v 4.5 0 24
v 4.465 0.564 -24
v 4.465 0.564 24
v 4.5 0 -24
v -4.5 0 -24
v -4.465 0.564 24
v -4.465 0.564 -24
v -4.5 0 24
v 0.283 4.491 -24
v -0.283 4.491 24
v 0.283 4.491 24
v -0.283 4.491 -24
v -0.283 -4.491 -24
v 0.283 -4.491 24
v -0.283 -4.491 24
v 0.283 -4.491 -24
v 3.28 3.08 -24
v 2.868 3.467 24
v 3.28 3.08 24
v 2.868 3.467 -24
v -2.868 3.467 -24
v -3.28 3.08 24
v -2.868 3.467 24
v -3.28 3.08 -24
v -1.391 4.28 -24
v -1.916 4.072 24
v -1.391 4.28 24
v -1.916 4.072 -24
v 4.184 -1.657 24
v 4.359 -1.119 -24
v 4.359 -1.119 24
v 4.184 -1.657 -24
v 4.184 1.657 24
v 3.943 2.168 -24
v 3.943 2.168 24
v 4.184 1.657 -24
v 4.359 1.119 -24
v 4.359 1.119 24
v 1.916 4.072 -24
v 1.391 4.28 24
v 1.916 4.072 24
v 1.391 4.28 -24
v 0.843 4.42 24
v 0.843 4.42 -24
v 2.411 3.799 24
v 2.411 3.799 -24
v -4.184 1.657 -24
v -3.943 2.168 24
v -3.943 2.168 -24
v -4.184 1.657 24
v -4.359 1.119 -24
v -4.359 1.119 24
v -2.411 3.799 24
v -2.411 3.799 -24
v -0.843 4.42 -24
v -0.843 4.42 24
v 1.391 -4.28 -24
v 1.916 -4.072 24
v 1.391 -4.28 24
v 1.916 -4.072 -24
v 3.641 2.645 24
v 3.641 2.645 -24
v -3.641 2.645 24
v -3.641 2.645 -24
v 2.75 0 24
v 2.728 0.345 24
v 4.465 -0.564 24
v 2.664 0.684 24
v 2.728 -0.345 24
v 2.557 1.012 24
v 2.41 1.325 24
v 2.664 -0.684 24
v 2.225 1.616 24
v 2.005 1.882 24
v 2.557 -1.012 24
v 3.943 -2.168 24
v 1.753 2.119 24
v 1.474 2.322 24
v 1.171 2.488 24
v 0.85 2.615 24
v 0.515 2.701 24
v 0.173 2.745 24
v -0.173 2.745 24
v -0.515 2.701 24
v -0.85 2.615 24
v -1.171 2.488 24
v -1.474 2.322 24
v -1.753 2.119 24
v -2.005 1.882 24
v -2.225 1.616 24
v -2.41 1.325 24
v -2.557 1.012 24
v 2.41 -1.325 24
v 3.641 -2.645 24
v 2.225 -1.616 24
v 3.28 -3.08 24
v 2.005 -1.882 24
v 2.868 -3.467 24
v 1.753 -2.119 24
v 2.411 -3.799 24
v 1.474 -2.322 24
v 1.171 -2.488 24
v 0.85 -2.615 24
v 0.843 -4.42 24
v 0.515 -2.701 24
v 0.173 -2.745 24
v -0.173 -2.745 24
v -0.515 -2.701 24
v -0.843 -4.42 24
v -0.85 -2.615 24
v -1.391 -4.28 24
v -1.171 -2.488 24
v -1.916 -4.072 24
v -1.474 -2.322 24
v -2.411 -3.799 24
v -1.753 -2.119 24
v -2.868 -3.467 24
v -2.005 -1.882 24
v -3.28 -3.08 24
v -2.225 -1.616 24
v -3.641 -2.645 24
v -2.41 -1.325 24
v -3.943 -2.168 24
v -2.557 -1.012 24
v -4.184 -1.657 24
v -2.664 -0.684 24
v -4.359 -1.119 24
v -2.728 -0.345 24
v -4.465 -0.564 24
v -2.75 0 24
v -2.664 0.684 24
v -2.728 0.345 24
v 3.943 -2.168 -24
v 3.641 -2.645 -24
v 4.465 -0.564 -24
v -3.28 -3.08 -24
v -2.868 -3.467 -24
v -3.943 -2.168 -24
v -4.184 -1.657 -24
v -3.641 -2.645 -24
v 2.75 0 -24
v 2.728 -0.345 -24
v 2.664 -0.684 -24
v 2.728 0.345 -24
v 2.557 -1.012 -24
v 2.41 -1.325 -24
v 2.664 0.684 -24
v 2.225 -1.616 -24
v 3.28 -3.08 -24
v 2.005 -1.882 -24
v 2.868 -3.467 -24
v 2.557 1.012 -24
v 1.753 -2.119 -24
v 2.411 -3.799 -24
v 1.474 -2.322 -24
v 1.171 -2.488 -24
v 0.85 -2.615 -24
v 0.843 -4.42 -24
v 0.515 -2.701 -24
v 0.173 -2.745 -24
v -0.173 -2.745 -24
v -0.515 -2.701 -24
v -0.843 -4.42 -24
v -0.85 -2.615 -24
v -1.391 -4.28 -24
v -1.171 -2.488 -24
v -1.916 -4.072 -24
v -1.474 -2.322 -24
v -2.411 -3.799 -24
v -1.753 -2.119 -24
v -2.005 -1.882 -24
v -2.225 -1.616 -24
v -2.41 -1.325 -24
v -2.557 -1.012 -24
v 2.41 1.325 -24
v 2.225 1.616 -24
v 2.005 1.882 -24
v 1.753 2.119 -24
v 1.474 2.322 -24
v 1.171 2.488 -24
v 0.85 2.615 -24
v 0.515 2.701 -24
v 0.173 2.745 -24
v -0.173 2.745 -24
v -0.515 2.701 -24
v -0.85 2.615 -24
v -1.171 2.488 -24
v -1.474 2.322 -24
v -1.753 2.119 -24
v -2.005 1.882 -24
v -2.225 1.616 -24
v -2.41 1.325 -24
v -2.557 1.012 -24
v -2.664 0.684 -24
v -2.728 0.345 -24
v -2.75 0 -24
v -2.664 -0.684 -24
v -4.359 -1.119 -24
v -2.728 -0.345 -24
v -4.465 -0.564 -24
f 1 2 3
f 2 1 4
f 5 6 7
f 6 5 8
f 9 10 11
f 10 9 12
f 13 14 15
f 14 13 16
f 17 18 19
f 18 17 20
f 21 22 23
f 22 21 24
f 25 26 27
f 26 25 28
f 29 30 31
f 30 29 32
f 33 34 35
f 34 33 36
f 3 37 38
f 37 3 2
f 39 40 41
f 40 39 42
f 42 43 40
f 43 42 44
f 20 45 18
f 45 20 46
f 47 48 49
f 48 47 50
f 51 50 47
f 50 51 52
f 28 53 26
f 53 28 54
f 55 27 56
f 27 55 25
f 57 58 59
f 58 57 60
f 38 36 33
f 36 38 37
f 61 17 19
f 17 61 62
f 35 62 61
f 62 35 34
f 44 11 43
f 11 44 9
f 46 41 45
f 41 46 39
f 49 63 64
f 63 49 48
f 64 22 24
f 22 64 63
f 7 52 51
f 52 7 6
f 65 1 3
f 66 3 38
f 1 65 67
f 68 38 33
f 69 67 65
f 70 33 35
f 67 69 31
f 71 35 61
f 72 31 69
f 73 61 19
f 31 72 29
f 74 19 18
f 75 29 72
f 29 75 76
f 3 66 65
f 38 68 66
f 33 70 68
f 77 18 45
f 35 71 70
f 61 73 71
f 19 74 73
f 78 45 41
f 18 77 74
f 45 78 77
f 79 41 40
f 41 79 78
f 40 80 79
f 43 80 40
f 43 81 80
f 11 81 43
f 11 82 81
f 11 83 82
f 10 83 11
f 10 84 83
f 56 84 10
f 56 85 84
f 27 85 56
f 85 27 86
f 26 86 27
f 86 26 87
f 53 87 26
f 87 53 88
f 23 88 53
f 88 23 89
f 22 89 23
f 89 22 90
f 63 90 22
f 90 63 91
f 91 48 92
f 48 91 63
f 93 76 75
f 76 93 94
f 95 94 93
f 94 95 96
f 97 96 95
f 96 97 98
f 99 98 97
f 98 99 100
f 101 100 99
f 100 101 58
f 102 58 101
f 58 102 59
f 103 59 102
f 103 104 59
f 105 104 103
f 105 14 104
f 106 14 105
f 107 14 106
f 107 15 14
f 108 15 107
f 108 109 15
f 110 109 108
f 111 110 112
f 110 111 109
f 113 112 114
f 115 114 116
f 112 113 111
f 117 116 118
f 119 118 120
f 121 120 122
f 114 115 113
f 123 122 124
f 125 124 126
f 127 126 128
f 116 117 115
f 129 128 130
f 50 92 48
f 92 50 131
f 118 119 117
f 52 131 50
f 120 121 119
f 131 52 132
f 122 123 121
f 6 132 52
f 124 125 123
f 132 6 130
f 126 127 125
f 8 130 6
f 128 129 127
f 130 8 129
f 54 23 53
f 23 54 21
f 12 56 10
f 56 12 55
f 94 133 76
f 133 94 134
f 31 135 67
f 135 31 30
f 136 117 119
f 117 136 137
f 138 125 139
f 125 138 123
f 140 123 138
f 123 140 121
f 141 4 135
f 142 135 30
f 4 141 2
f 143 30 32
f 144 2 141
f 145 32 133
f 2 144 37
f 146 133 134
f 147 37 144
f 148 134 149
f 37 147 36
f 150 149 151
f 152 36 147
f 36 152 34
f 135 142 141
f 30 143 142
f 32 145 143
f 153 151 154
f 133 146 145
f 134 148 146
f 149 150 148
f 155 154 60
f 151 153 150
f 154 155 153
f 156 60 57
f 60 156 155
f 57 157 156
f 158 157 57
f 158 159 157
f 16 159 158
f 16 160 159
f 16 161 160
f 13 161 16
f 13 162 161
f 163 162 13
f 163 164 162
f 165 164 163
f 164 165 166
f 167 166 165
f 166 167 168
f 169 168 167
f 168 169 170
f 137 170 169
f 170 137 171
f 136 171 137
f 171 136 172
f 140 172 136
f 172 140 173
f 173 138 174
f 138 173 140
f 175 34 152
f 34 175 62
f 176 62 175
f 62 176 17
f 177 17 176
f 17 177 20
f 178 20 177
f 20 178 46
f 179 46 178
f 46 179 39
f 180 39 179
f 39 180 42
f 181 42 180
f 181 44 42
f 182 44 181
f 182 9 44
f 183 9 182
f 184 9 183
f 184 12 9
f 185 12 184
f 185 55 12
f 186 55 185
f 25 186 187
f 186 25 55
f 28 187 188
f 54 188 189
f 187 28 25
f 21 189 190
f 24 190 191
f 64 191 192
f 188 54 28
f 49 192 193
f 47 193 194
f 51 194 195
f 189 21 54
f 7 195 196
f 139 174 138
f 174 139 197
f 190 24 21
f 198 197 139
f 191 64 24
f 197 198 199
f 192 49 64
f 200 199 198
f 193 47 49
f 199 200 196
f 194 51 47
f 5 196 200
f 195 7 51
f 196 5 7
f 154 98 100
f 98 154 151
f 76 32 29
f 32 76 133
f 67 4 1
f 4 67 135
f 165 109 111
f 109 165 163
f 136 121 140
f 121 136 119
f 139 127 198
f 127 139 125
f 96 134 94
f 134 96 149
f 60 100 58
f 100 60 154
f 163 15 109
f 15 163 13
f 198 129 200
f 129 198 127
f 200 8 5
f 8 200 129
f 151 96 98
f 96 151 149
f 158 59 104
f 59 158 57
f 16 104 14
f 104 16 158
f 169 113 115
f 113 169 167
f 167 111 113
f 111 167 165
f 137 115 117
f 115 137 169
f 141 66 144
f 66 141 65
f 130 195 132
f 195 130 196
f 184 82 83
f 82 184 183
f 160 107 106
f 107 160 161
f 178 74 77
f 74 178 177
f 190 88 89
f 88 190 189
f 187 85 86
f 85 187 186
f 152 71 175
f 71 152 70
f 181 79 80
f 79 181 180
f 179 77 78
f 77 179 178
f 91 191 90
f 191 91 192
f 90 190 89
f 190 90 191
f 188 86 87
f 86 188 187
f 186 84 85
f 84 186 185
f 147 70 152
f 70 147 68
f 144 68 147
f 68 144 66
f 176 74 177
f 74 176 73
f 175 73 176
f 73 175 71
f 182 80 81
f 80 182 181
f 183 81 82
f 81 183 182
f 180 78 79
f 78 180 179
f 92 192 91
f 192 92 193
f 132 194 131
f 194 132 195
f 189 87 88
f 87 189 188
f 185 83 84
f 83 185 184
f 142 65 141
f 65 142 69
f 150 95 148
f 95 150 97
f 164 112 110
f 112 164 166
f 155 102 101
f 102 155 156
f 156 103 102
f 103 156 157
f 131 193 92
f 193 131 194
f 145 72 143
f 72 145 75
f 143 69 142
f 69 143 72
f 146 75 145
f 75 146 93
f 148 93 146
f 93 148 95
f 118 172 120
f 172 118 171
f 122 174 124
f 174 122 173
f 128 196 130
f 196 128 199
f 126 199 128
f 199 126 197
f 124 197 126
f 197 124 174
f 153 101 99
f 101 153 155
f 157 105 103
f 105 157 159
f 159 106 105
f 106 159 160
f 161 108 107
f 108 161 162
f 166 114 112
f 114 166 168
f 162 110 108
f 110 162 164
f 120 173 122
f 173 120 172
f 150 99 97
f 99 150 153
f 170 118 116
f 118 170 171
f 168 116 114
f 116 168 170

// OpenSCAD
$fn = 50;


difference() {
	union() {
		translate(v = [0, 0, -24.0000000000]) {
			cylinder(h = 48, r = 4.5000000000);
		}
	}
	union() {
		translate(v = [0, 0, -100.0000000000]) {
			cylinder(h = 200, r = 2.7500000000);
		}
	}
}
